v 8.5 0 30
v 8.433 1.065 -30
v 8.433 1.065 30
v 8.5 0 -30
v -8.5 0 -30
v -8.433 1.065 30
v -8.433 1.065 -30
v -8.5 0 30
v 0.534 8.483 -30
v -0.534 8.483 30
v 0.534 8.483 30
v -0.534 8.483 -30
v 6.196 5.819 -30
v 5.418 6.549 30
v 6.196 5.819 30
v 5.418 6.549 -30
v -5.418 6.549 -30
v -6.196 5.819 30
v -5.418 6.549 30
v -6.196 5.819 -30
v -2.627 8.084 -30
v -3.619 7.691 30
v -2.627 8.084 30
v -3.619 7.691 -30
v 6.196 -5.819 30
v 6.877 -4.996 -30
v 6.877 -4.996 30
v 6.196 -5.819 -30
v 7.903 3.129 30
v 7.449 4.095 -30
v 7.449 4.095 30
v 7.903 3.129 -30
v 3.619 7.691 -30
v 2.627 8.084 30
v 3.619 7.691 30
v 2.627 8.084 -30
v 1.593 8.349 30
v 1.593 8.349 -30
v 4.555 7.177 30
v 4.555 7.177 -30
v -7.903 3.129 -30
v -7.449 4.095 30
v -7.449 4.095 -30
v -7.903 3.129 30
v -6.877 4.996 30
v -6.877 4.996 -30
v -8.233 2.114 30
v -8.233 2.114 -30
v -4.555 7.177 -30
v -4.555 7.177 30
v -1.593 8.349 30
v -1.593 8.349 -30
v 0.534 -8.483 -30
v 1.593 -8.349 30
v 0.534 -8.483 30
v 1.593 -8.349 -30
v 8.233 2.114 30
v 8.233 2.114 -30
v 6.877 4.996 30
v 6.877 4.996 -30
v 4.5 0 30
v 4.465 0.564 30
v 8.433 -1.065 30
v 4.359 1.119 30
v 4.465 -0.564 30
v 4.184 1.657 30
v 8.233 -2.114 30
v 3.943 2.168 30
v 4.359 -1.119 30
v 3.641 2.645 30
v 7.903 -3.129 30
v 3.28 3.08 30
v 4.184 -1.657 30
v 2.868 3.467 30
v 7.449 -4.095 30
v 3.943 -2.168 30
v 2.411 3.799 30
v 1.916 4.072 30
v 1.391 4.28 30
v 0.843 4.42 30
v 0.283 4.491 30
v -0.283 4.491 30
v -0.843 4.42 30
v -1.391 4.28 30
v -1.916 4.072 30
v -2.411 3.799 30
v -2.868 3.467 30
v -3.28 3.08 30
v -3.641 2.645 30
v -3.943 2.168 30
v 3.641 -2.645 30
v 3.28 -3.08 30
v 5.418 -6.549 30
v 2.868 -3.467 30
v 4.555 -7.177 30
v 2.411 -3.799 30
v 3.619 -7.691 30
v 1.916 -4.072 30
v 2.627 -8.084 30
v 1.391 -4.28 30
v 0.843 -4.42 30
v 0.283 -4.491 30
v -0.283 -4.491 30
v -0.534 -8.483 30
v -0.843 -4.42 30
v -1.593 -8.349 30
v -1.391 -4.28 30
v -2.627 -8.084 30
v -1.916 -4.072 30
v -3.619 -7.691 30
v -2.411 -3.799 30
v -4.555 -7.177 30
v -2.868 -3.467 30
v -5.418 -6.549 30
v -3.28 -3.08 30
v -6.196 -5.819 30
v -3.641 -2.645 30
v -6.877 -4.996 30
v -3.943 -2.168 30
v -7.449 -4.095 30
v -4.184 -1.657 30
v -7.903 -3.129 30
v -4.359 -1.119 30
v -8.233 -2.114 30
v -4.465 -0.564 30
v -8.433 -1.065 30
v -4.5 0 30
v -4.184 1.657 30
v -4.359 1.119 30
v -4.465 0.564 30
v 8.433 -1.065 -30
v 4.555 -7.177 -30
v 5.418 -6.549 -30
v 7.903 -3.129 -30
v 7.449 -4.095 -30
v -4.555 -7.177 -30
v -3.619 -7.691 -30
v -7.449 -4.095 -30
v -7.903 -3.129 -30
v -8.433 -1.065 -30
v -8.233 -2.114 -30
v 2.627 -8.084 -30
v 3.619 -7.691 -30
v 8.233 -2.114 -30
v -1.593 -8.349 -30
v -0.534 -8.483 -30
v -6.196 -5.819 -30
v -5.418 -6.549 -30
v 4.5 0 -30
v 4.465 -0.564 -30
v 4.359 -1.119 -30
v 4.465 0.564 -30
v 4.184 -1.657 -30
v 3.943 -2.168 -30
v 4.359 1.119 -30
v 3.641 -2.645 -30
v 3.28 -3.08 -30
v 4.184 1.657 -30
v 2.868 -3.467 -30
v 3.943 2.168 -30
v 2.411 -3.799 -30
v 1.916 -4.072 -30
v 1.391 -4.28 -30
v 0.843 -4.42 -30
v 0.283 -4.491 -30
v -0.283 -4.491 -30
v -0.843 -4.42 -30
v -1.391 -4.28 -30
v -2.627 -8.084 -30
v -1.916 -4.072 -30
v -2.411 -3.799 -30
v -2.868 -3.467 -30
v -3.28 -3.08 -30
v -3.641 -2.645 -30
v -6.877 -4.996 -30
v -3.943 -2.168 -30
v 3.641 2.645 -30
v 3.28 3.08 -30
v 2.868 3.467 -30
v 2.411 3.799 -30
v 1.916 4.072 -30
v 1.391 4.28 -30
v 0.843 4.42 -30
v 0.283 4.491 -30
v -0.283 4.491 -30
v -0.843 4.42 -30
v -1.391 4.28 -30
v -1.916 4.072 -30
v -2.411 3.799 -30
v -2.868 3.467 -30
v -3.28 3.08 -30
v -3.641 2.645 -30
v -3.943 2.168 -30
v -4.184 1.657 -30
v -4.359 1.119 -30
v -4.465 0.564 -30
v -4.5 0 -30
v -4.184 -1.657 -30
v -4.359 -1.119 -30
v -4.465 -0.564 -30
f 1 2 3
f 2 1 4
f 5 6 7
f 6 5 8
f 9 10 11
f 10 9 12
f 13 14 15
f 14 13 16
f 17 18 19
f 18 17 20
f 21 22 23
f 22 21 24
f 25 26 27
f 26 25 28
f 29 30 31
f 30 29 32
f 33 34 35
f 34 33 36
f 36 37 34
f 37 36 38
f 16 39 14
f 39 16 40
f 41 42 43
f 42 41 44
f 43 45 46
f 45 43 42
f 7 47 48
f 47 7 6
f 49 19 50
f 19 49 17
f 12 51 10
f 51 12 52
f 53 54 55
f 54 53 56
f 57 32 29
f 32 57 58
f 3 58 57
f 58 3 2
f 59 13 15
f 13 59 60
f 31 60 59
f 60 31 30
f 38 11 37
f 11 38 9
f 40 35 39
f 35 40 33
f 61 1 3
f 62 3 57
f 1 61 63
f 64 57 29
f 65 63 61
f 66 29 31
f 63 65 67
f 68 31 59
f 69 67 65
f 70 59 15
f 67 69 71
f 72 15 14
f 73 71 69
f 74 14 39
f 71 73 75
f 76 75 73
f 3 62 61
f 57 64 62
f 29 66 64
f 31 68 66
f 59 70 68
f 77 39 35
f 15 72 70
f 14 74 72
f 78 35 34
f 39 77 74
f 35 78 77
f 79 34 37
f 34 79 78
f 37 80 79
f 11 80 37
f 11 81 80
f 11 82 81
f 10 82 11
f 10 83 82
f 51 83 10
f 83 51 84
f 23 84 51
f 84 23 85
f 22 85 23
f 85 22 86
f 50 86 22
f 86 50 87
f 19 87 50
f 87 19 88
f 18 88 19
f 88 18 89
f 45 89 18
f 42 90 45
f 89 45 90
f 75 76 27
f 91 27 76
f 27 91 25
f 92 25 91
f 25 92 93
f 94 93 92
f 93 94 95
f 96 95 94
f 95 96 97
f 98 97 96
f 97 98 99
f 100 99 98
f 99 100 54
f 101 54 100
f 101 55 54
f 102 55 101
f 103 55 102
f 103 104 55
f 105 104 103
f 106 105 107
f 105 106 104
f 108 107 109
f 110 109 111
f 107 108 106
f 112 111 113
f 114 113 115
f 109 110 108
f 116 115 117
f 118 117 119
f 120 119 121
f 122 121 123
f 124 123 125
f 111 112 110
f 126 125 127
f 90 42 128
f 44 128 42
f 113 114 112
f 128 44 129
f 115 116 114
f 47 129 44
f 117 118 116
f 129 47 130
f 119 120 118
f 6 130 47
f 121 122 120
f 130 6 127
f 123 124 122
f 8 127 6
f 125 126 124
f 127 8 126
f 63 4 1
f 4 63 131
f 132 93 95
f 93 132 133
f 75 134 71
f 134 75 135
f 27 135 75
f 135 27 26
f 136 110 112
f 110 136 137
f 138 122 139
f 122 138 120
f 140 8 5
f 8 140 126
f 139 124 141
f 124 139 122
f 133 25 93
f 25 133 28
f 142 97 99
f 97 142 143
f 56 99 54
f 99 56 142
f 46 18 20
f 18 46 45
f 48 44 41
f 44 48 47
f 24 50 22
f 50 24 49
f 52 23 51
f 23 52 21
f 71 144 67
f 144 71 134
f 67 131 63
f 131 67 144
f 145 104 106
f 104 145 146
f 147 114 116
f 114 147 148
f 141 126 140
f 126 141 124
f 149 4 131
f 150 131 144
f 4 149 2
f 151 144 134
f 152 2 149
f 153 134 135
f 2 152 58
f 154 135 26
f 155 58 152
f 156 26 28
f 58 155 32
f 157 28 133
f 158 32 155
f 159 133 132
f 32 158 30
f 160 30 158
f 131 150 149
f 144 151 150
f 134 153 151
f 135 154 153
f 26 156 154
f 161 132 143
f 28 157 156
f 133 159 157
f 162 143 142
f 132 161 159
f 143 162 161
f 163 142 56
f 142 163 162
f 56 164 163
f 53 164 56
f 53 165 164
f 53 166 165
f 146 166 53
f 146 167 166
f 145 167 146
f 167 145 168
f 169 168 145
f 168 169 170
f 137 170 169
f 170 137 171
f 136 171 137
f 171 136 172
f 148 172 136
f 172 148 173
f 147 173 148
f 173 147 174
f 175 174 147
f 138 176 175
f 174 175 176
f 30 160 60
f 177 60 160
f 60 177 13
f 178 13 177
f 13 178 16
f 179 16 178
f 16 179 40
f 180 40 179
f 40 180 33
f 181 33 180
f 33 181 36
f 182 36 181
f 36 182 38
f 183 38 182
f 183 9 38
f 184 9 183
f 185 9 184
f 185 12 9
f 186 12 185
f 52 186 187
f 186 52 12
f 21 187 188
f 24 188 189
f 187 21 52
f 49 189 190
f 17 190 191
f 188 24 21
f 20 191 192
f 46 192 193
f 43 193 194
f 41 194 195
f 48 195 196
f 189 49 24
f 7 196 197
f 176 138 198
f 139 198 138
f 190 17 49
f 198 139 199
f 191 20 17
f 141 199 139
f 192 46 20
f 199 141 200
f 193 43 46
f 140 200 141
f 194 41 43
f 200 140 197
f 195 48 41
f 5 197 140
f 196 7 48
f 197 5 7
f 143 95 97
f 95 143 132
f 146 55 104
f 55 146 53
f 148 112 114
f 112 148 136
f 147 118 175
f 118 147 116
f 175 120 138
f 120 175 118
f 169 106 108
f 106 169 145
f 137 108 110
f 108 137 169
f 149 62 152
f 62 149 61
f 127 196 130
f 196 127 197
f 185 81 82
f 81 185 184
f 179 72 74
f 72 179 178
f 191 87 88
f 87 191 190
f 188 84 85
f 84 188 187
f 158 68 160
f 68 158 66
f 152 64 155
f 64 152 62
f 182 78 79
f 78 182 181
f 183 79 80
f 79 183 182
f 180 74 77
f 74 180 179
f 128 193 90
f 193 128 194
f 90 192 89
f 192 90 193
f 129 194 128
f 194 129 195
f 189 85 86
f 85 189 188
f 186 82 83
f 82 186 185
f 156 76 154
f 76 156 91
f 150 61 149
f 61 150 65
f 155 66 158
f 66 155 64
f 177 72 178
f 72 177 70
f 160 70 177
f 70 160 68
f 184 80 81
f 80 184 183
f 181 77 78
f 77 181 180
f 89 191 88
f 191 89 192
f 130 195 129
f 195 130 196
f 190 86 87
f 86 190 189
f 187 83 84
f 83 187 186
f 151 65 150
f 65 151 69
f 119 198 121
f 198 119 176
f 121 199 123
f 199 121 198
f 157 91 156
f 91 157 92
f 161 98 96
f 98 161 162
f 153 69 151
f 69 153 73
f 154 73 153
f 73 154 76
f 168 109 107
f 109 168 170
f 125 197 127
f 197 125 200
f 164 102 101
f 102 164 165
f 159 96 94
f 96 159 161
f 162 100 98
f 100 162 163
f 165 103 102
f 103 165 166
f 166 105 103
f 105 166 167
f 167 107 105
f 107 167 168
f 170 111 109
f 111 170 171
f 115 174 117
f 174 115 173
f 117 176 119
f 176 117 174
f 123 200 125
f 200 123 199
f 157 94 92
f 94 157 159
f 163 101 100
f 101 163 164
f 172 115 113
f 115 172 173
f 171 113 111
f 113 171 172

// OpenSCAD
$fn = 50;


difference() {
	union() {
		translate(v = [0, 0, -30.0000000000]) {
			cylinder(h = 60, r = 8.5000000000);
		}
	}
	union() {
		translate(v = [0, 0, -100.0000000000]) {
			cylinder(h = 200, r = 4.5000000000);
		}
	}
}
